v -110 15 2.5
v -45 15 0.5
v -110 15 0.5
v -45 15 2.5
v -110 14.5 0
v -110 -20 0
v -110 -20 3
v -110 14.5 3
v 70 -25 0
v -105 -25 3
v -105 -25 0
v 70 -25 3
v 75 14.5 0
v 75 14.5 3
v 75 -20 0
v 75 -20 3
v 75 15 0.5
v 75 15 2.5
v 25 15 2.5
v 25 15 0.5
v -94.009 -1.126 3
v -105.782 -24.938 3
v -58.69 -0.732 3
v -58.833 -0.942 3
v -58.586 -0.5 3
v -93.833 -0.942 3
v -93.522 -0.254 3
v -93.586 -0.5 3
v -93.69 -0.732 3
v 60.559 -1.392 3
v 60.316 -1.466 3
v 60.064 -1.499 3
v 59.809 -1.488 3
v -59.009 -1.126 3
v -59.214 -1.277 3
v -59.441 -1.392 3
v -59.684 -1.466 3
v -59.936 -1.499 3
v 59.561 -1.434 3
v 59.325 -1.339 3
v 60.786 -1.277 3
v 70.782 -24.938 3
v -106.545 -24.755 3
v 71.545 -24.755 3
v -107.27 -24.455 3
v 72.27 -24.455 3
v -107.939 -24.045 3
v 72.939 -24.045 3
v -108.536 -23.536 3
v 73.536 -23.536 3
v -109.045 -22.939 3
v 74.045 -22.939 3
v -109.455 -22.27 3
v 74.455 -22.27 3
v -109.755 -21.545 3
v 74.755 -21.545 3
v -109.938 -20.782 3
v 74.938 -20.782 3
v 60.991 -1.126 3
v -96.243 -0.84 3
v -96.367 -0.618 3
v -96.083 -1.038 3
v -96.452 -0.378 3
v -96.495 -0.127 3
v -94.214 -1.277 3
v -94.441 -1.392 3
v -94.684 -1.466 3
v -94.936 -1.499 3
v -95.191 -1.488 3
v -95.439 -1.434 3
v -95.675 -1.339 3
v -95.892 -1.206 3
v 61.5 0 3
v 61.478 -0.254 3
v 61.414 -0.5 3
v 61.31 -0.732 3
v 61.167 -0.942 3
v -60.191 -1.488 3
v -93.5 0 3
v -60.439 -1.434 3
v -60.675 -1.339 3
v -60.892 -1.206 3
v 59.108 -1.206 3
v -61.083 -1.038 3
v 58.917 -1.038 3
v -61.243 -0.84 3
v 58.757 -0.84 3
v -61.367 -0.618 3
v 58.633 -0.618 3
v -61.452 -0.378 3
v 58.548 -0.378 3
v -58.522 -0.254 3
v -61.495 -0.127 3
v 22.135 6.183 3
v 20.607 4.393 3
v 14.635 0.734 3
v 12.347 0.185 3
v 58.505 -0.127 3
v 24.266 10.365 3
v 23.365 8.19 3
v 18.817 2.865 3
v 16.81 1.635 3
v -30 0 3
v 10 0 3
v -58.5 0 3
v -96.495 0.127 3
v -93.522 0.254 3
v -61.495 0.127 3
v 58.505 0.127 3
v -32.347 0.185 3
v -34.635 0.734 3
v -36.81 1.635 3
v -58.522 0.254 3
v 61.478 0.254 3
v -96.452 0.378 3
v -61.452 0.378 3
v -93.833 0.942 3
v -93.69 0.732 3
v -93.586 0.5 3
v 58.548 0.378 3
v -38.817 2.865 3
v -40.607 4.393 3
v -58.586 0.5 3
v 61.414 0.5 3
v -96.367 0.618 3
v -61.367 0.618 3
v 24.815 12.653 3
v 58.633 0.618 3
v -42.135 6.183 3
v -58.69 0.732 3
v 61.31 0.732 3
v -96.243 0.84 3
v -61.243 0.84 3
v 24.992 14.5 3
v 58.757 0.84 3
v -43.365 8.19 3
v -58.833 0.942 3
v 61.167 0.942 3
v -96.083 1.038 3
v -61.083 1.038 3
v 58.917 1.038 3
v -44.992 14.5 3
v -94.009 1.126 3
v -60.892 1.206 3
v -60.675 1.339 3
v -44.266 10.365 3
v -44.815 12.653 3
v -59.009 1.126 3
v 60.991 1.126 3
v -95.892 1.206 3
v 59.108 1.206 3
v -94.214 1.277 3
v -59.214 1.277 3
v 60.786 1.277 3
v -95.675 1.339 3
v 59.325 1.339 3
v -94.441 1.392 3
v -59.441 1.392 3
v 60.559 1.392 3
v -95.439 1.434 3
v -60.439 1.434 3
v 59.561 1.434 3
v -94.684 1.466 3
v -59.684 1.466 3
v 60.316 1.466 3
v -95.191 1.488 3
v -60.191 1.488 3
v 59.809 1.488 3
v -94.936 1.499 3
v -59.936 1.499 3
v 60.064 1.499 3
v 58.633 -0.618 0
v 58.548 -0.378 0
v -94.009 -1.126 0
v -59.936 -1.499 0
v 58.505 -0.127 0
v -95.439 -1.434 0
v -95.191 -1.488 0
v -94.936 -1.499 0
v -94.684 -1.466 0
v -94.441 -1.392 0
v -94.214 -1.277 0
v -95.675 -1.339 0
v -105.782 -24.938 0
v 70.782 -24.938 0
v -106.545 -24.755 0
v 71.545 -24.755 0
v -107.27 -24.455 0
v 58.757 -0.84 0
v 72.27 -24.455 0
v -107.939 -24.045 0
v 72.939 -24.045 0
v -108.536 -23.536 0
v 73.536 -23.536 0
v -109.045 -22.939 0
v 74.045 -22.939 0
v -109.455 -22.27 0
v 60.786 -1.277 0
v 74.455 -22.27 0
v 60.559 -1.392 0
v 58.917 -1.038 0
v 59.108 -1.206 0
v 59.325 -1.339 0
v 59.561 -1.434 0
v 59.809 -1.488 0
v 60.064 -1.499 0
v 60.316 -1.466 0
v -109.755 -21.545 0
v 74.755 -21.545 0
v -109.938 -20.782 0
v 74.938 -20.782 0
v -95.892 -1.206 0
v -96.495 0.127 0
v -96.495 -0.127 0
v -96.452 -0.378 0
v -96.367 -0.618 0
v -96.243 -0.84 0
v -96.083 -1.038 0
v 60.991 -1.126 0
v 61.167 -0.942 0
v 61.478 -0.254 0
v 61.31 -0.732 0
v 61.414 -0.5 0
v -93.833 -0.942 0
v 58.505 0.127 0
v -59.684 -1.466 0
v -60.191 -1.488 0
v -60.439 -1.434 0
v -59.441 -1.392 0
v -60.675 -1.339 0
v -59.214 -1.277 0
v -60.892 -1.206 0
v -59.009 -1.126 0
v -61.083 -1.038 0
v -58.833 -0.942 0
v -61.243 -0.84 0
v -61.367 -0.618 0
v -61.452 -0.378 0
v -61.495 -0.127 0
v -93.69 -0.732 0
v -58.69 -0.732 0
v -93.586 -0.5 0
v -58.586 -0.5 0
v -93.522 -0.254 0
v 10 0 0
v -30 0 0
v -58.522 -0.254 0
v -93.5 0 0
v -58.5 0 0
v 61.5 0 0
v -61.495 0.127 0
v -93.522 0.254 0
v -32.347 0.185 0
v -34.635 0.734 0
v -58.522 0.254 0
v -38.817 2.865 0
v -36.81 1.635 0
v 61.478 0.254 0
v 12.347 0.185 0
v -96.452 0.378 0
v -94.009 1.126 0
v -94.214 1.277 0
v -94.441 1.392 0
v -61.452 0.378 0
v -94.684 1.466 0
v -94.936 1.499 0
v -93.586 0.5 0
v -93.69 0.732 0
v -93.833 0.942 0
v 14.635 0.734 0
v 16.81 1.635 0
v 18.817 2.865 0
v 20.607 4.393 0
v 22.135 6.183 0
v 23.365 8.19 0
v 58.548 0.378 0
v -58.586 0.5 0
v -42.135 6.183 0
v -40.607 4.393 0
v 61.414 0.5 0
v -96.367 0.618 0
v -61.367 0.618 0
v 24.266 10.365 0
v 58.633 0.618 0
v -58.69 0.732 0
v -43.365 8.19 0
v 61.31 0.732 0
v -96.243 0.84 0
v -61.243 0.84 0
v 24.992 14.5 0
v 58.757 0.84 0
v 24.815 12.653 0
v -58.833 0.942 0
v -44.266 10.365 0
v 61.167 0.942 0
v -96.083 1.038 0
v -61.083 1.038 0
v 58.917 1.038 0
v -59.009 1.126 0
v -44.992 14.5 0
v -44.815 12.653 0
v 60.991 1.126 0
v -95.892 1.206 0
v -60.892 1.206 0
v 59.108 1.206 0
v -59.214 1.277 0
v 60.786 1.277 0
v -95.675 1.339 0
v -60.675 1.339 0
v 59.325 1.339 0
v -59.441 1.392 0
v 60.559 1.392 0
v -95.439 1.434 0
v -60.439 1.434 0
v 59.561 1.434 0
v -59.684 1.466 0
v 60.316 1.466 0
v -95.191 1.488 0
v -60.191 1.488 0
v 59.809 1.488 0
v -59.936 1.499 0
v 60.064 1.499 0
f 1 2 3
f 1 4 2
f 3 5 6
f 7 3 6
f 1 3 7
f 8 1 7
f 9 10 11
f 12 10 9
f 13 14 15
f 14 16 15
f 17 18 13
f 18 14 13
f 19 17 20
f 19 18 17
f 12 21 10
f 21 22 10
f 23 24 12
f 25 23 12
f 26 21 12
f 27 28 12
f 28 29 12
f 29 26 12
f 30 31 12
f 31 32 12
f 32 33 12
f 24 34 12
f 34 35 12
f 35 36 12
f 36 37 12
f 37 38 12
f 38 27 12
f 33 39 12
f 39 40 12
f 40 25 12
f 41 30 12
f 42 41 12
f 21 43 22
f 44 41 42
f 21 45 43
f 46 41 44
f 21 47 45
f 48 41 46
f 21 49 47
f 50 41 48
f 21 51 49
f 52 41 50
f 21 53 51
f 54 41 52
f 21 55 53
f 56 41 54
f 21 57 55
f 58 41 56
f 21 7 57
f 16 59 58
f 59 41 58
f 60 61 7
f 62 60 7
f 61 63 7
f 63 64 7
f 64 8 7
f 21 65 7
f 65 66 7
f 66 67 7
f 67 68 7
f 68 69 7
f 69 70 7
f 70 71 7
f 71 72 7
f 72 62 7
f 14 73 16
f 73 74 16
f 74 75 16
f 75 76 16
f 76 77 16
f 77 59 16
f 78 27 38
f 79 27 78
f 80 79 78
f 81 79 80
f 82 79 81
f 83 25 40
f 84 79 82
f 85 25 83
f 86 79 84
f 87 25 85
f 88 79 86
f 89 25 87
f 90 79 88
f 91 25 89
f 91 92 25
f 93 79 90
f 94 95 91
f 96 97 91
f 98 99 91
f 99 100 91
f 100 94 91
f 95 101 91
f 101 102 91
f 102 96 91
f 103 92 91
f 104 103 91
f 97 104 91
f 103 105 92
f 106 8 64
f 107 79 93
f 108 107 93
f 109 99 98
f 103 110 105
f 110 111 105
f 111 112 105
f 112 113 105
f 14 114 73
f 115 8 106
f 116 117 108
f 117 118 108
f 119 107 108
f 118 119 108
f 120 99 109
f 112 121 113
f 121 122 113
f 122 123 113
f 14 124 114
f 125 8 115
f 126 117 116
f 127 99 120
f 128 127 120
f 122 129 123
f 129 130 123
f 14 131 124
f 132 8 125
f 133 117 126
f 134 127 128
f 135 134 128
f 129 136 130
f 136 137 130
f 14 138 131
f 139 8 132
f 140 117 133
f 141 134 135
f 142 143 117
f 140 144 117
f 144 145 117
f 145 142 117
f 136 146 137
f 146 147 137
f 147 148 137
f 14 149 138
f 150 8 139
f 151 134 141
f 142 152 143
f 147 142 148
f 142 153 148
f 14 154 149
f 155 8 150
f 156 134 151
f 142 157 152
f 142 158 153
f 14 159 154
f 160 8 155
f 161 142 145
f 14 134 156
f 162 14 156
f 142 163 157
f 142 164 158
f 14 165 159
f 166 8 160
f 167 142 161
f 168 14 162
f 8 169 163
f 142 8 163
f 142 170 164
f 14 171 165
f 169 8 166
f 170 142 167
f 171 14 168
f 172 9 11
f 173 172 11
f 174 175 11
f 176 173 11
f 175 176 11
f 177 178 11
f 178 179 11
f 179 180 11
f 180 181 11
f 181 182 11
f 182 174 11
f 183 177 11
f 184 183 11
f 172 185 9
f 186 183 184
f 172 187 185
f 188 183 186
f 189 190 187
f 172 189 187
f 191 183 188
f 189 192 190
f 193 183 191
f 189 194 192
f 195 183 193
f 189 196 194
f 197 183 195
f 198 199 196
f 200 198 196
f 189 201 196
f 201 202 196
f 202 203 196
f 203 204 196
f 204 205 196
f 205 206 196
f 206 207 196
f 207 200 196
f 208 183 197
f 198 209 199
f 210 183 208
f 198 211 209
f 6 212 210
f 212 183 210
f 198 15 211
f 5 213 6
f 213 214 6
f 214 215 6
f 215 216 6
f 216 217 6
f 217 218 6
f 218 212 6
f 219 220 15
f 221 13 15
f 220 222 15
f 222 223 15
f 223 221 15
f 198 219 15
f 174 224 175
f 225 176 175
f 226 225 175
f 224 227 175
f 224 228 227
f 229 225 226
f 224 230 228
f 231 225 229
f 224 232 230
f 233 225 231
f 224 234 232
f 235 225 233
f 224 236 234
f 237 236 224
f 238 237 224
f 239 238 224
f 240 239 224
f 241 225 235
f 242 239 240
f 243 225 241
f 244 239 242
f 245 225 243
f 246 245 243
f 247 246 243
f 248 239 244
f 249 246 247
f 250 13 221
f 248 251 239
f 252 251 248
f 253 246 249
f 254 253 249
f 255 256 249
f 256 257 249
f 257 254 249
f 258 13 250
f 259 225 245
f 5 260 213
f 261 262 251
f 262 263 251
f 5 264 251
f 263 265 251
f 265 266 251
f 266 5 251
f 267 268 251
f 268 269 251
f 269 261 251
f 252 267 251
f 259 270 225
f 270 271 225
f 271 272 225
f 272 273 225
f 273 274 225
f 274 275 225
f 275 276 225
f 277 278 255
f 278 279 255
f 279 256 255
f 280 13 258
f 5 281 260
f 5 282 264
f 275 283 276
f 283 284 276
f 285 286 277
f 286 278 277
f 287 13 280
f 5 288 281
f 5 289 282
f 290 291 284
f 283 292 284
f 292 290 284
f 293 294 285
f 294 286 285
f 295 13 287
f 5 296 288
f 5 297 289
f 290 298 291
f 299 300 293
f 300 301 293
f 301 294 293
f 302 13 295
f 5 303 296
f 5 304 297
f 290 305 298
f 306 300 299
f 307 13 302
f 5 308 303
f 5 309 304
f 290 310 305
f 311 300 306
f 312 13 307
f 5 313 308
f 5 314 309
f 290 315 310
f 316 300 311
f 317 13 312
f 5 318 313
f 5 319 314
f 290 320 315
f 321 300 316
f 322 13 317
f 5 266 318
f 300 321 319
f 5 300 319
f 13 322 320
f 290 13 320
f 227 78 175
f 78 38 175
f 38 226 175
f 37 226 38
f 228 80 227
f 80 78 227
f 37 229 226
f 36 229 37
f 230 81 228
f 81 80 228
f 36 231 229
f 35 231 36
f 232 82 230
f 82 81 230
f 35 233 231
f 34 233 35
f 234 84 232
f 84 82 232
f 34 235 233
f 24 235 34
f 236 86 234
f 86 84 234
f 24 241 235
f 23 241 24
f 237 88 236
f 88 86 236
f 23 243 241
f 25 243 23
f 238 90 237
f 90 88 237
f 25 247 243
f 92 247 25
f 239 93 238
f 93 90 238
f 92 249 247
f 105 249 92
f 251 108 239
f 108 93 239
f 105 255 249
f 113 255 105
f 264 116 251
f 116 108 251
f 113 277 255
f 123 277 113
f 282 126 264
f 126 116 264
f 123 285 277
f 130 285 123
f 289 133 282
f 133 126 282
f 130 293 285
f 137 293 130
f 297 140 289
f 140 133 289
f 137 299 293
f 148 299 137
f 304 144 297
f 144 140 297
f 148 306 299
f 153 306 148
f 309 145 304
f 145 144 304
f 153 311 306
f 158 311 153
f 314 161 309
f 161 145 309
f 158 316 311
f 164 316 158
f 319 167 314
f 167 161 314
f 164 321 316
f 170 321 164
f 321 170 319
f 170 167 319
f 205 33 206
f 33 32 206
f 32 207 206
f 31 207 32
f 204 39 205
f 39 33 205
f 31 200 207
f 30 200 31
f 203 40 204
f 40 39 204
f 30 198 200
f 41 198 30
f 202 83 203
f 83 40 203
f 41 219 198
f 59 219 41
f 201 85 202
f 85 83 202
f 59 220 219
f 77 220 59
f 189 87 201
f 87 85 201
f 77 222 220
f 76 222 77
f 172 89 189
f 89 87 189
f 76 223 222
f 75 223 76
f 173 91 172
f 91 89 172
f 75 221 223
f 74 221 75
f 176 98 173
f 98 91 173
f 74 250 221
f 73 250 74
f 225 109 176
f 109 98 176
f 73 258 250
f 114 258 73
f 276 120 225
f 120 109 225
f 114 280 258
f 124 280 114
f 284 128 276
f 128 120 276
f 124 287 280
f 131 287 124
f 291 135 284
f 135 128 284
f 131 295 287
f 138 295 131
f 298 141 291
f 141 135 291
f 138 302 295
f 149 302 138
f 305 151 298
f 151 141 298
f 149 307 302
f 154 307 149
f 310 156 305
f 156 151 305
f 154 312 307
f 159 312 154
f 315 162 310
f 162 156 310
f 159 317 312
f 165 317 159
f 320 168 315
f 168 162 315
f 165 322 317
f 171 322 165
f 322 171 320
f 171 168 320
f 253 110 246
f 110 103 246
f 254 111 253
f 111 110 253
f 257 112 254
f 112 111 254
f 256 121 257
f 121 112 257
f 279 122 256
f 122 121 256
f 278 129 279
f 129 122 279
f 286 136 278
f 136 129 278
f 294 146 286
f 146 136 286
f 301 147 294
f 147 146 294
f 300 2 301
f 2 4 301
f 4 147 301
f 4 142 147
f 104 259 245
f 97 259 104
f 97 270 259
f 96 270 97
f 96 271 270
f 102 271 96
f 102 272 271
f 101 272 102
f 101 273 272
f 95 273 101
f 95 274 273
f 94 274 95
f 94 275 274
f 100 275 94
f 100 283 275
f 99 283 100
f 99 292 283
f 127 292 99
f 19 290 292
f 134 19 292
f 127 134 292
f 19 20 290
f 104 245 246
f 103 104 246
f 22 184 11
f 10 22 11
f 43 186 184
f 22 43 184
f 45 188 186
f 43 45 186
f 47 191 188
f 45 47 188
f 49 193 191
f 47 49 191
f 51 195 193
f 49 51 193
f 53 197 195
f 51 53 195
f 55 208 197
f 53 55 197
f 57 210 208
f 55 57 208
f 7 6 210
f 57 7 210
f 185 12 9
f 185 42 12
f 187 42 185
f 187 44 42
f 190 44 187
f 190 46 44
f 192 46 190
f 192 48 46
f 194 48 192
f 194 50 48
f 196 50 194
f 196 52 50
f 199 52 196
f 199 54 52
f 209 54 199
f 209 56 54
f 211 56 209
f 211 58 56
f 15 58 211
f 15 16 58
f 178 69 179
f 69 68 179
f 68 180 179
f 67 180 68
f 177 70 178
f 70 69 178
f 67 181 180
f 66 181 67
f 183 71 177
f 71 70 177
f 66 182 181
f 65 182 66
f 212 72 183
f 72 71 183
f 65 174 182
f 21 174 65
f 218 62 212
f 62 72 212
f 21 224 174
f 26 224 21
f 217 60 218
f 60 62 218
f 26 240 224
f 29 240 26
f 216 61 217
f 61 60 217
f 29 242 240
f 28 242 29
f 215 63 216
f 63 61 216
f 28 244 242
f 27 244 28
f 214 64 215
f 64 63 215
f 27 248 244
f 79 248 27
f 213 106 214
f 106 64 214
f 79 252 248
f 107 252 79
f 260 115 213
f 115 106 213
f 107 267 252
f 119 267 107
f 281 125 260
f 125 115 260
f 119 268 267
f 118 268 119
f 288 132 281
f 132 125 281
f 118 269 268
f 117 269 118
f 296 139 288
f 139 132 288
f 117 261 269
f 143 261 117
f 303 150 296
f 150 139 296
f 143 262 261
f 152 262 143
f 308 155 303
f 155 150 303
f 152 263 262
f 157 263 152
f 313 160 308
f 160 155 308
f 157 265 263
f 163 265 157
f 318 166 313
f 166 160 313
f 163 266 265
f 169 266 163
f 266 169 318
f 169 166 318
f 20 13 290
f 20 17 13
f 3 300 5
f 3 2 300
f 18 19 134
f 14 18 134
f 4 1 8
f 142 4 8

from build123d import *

# Parameters (mm, degrees)
SKETCH_1_W          = 185
SKETCH_1_H          = 40
EXTRUDE_1_DEPTH     = 3
SKETCH_2_R          = 1.5
CUT_EXTRUDE_1_DEPTH = 3
CUT_EXTRUDE_2_DEPTH = 3
FILLET_1_R          = 5
SKETCH_4_R          = 1.5
CUT_EXTRUDE_3_DEPTH = 3
CHAMFER_1_SIZE      = 0.5


with BuildPart() as part:
    # 草图1 → 凸台-拉伸1 (new body)
    with BuildSketch(Plane.XY):
        with Locations((-17.5, -5)):
            Rectangle(SKETCH_1_W, SKETCH_1_H)
    extrude(amount=EXTRUDE_1_DEPTH)

    # 草图2 → 切除-拉伸1 (cut)
    with BuildSketch(Plane.XY.offset(3)):
        with Locations((60, 0)):
            Circle(SKETCH_2_R)
        with Locations((-60, 0)):
            Circle(SKETCH_2_R)
    extrude(amount=-CUT_EXTRUDE_1_DEPTH, mode=Mode.SUBTRACT)

    # 草图3 → 切除-拉伸2 (cut)
    with BuildSketch(Plane.XY.offset(3)):
        with BuildLine():
            Line((-30, 30), (10, 30))
            ThreePointArc((10, 30), (25, 15), (10, 0))
            Line((10, 0), (-30, 0))
            ThreePointArc((-30, 0), (-45, 15), (-30, 30))
        make_face()
    extrude(amount=-CUT_EXTRUDE_2_DEPTH, mode=Mode.SUBTRACT)

    # 圆角1
    fillet_1_edges = [part.edges().sort_by_distance(p)[0] for p in [
        (75, -25, 1.5),
        (-110, -25, 1.5),
    ]]
    fillet(fillet_1_edges, radius=FILLET_1_R)

    # 草图4 → 切除-拉伸3 (cut)
    with BuildSketch(Plane.XY.offset(3)):
        with Locations((-95, 0)):
            Circle(SKETCH_4_R)
    extrude(amount=-CUT_EXTRUDE_3_DEPTH, mode=Mode.SUBTRACT)

    # 倒角1
    chamfer_1_edges = [part.edges().sort_by_distance(p)[0] for p in [
        (50, 15, 3),
        (-77.5, 15, 0),
        (-77.5, 15, 3),
        (50, 15, 0),
    ]]
    chamfer(chamfer_1_edges, length=CHAMFER_1_SIZE)


solid = part.part
